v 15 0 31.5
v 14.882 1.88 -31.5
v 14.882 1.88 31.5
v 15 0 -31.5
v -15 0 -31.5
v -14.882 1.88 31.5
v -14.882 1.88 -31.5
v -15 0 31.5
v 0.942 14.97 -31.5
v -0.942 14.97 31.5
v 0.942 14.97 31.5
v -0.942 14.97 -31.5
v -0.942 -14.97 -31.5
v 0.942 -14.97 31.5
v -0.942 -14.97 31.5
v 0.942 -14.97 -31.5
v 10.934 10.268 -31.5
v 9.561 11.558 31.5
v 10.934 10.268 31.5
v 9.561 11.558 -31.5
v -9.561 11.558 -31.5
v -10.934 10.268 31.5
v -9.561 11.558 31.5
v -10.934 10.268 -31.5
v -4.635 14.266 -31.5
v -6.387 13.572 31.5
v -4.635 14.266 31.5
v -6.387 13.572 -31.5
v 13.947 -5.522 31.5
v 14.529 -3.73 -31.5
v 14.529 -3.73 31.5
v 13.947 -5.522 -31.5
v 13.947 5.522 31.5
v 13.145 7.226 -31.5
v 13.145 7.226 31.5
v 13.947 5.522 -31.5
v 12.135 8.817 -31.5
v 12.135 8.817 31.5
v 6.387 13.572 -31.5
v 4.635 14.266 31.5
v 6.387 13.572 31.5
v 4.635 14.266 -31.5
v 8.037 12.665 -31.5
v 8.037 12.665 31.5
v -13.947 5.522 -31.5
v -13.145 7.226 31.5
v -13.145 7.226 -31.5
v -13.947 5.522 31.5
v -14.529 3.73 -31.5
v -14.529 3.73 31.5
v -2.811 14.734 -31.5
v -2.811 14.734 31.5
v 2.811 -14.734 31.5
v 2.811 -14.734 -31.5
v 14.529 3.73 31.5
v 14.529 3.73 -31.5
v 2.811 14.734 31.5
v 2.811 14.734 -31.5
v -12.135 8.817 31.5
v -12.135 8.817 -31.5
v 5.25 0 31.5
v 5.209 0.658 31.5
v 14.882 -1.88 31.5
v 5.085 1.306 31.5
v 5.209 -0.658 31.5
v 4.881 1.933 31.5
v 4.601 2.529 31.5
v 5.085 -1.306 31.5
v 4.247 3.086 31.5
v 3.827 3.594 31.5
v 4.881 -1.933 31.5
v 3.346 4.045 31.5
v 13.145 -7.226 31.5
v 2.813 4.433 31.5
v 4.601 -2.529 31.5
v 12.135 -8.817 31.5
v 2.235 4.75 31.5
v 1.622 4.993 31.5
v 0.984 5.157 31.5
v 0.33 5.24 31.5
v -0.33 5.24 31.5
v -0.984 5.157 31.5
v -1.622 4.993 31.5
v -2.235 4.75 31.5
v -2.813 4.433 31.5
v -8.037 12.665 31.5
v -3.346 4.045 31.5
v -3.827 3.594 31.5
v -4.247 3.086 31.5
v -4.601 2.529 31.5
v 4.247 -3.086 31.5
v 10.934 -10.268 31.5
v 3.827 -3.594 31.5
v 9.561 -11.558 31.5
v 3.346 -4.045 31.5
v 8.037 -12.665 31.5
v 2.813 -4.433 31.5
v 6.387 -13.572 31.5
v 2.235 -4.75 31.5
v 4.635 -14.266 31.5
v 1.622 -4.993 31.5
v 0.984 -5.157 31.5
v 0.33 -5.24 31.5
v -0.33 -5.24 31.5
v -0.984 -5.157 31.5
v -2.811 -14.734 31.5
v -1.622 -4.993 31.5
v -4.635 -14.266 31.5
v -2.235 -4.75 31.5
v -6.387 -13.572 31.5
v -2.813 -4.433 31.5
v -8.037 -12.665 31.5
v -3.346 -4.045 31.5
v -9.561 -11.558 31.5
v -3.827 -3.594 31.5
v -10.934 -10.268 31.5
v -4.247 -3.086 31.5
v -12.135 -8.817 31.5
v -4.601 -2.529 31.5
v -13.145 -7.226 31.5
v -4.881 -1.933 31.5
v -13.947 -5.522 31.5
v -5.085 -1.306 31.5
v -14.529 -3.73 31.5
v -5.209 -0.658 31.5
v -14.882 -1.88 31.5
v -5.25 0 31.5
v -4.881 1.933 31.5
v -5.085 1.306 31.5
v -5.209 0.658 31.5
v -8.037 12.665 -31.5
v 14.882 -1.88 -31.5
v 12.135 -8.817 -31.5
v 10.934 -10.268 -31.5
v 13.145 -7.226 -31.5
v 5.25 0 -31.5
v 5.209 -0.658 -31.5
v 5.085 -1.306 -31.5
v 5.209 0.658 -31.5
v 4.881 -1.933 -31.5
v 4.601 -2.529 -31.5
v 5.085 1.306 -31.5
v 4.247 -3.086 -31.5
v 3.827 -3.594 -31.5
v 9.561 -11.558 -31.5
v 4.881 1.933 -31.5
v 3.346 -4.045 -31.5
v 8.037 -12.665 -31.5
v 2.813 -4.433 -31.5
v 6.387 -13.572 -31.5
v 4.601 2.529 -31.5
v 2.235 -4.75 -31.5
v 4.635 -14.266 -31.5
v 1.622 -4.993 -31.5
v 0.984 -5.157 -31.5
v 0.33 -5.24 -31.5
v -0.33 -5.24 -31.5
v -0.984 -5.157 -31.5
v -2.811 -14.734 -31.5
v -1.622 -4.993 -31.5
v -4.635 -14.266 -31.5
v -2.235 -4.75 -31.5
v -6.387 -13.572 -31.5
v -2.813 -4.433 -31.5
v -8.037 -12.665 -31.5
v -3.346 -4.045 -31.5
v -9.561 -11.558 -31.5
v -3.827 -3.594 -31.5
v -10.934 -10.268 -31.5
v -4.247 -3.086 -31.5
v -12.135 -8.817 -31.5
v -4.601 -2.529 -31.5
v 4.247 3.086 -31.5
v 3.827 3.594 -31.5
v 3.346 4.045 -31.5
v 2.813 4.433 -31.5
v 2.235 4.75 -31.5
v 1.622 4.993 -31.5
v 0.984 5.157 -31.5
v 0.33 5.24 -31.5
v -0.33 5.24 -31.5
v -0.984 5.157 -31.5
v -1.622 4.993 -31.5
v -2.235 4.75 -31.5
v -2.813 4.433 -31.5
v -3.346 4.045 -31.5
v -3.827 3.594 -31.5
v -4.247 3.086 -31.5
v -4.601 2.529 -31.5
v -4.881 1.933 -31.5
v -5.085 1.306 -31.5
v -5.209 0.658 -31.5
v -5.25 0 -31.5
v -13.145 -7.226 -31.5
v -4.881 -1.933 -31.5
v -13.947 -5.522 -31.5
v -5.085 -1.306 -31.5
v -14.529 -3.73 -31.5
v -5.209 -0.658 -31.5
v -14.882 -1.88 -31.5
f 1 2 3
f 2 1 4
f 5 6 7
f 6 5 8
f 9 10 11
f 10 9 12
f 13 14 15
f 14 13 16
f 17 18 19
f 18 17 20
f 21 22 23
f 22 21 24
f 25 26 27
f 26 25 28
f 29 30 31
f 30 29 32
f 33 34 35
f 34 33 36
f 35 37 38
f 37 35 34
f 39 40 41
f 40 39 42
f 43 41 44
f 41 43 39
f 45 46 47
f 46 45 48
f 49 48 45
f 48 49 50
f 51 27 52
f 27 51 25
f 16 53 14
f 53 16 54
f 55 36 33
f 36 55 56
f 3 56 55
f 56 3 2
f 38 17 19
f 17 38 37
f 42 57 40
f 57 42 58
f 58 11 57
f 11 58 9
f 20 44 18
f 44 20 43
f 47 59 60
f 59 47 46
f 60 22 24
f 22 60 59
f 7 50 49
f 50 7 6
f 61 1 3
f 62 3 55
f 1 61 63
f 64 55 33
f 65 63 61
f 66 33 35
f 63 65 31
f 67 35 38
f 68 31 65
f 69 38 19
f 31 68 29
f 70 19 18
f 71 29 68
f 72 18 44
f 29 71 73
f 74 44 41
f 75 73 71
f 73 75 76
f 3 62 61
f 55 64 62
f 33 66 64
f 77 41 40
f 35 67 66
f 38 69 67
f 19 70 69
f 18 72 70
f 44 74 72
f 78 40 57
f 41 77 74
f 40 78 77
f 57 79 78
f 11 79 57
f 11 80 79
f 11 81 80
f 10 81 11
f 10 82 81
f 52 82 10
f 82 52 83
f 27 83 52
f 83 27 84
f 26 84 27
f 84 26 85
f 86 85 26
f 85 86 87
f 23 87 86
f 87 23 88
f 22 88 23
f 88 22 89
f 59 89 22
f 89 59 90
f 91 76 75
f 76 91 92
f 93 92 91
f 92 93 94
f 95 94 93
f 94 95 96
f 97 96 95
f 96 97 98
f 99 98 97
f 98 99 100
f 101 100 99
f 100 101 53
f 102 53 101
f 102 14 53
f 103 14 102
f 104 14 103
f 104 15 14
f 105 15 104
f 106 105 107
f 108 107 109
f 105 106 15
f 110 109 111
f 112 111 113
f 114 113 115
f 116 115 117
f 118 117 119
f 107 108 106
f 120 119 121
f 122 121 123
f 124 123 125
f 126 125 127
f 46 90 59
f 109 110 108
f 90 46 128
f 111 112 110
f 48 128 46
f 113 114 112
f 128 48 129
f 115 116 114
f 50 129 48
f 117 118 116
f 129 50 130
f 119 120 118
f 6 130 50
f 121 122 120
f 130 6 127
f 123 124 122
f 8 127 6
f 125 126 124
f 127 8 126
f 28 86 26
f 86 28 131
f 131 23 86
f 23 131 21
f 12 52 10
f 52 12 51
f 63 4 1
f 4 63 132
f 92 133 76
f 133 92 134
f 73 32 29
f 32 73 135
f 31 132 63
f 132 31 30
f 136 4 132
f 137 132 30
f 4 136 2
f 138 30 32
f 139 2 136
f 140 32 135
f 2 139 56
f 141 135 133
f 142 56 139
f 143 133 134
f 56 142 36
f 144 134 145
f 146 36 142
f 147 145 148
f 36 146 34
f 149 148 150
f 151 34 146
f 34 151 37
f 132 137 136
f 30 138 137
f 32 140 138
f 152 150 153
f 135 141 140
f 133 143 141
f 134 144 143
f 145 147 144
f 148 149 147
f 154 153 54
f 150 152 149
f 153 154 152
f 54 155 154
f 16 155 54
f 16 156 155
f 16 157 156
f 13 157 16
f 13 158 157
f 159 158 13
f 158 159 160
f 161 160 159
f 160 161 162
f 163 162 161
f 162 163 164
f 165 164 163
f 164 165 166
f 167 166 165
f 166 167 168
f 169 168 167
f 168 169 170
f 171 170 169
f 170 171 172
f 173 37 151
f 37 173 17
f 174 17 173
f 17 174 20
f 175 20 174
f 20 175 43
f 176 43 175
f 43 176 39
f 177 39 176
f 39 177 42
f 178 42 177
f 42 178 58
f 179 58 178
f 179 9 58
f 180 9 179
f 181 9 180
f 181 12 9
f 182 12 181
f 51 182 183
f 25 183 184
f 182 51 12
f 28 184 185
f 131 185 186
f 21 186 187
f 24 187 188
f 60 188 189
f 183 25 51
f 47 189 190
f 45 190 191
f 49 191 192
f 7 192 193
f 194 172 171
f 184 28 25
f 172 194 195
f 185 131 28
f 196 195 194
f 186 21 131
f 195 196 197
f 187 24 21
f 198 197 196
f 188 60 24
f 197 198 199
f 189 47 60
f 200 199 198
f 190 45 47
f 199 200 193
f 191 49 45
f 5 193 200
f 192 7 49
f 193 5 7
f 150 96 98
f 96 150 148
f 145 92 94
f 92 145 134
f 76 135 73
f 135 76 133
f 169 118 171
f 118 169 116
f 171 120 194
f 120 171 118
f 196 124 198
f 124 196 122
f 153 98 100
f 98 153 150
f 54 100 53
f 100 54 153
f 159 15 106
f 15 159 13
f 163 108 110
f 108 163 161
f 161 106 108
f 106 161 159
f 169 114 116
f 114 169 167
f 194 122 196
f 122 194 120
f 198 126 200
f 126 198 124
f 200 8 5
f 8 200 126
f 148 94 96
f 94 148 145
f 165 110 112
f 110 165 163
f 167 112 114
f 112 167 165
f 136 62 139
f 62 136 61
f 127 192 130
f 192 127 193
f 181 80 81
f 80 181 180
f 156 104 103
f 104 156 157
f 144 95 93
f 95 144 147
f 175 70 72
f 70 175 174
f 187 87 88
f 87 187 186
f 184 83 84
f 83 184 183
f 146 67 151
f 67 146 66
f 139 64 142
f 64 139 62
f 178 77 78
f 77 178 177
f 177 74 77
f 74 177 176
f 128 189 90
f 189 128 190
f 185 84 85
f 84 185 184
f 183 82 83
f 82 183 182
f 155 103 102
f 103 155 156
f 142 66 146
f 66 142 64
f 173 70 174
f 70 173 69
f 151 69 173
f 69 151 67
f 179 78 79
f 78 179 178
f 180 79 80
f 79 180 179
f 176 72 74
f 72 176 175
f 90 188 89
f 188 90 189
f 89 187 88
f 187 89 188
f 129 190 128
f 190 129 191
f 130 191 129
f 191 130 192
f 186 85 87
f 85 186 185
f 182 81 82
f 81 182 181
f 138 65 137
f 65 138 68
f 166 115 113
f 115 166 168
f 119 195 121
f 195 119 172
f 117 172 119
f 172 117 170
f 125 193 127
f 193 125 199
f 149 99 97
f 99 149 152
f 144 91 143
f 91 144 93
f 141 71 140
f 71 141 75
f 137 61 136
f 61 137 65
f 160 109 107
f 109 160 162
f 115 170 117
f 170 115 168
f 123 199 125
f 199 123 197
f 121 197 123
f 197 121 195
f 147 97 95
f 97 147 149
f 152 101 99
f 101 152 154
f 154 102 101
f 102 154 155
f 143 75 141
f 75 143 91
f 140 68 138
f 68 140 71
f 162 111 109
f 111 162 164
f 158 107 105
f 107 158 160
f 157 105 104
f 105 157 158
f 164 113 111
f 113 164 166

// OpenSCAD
$fn = 50;


difference() {
	union() {
		translate(v = [0, 0, -31.5000000000]) {
			cylinder(h = 63, r = 15.0000000000);
		}
	}
	union() {
		translate(v = [0, 0, -100.0000000000]) {
			cylinder(h = 200, r = 5.2500000000);
		}
	}
}
